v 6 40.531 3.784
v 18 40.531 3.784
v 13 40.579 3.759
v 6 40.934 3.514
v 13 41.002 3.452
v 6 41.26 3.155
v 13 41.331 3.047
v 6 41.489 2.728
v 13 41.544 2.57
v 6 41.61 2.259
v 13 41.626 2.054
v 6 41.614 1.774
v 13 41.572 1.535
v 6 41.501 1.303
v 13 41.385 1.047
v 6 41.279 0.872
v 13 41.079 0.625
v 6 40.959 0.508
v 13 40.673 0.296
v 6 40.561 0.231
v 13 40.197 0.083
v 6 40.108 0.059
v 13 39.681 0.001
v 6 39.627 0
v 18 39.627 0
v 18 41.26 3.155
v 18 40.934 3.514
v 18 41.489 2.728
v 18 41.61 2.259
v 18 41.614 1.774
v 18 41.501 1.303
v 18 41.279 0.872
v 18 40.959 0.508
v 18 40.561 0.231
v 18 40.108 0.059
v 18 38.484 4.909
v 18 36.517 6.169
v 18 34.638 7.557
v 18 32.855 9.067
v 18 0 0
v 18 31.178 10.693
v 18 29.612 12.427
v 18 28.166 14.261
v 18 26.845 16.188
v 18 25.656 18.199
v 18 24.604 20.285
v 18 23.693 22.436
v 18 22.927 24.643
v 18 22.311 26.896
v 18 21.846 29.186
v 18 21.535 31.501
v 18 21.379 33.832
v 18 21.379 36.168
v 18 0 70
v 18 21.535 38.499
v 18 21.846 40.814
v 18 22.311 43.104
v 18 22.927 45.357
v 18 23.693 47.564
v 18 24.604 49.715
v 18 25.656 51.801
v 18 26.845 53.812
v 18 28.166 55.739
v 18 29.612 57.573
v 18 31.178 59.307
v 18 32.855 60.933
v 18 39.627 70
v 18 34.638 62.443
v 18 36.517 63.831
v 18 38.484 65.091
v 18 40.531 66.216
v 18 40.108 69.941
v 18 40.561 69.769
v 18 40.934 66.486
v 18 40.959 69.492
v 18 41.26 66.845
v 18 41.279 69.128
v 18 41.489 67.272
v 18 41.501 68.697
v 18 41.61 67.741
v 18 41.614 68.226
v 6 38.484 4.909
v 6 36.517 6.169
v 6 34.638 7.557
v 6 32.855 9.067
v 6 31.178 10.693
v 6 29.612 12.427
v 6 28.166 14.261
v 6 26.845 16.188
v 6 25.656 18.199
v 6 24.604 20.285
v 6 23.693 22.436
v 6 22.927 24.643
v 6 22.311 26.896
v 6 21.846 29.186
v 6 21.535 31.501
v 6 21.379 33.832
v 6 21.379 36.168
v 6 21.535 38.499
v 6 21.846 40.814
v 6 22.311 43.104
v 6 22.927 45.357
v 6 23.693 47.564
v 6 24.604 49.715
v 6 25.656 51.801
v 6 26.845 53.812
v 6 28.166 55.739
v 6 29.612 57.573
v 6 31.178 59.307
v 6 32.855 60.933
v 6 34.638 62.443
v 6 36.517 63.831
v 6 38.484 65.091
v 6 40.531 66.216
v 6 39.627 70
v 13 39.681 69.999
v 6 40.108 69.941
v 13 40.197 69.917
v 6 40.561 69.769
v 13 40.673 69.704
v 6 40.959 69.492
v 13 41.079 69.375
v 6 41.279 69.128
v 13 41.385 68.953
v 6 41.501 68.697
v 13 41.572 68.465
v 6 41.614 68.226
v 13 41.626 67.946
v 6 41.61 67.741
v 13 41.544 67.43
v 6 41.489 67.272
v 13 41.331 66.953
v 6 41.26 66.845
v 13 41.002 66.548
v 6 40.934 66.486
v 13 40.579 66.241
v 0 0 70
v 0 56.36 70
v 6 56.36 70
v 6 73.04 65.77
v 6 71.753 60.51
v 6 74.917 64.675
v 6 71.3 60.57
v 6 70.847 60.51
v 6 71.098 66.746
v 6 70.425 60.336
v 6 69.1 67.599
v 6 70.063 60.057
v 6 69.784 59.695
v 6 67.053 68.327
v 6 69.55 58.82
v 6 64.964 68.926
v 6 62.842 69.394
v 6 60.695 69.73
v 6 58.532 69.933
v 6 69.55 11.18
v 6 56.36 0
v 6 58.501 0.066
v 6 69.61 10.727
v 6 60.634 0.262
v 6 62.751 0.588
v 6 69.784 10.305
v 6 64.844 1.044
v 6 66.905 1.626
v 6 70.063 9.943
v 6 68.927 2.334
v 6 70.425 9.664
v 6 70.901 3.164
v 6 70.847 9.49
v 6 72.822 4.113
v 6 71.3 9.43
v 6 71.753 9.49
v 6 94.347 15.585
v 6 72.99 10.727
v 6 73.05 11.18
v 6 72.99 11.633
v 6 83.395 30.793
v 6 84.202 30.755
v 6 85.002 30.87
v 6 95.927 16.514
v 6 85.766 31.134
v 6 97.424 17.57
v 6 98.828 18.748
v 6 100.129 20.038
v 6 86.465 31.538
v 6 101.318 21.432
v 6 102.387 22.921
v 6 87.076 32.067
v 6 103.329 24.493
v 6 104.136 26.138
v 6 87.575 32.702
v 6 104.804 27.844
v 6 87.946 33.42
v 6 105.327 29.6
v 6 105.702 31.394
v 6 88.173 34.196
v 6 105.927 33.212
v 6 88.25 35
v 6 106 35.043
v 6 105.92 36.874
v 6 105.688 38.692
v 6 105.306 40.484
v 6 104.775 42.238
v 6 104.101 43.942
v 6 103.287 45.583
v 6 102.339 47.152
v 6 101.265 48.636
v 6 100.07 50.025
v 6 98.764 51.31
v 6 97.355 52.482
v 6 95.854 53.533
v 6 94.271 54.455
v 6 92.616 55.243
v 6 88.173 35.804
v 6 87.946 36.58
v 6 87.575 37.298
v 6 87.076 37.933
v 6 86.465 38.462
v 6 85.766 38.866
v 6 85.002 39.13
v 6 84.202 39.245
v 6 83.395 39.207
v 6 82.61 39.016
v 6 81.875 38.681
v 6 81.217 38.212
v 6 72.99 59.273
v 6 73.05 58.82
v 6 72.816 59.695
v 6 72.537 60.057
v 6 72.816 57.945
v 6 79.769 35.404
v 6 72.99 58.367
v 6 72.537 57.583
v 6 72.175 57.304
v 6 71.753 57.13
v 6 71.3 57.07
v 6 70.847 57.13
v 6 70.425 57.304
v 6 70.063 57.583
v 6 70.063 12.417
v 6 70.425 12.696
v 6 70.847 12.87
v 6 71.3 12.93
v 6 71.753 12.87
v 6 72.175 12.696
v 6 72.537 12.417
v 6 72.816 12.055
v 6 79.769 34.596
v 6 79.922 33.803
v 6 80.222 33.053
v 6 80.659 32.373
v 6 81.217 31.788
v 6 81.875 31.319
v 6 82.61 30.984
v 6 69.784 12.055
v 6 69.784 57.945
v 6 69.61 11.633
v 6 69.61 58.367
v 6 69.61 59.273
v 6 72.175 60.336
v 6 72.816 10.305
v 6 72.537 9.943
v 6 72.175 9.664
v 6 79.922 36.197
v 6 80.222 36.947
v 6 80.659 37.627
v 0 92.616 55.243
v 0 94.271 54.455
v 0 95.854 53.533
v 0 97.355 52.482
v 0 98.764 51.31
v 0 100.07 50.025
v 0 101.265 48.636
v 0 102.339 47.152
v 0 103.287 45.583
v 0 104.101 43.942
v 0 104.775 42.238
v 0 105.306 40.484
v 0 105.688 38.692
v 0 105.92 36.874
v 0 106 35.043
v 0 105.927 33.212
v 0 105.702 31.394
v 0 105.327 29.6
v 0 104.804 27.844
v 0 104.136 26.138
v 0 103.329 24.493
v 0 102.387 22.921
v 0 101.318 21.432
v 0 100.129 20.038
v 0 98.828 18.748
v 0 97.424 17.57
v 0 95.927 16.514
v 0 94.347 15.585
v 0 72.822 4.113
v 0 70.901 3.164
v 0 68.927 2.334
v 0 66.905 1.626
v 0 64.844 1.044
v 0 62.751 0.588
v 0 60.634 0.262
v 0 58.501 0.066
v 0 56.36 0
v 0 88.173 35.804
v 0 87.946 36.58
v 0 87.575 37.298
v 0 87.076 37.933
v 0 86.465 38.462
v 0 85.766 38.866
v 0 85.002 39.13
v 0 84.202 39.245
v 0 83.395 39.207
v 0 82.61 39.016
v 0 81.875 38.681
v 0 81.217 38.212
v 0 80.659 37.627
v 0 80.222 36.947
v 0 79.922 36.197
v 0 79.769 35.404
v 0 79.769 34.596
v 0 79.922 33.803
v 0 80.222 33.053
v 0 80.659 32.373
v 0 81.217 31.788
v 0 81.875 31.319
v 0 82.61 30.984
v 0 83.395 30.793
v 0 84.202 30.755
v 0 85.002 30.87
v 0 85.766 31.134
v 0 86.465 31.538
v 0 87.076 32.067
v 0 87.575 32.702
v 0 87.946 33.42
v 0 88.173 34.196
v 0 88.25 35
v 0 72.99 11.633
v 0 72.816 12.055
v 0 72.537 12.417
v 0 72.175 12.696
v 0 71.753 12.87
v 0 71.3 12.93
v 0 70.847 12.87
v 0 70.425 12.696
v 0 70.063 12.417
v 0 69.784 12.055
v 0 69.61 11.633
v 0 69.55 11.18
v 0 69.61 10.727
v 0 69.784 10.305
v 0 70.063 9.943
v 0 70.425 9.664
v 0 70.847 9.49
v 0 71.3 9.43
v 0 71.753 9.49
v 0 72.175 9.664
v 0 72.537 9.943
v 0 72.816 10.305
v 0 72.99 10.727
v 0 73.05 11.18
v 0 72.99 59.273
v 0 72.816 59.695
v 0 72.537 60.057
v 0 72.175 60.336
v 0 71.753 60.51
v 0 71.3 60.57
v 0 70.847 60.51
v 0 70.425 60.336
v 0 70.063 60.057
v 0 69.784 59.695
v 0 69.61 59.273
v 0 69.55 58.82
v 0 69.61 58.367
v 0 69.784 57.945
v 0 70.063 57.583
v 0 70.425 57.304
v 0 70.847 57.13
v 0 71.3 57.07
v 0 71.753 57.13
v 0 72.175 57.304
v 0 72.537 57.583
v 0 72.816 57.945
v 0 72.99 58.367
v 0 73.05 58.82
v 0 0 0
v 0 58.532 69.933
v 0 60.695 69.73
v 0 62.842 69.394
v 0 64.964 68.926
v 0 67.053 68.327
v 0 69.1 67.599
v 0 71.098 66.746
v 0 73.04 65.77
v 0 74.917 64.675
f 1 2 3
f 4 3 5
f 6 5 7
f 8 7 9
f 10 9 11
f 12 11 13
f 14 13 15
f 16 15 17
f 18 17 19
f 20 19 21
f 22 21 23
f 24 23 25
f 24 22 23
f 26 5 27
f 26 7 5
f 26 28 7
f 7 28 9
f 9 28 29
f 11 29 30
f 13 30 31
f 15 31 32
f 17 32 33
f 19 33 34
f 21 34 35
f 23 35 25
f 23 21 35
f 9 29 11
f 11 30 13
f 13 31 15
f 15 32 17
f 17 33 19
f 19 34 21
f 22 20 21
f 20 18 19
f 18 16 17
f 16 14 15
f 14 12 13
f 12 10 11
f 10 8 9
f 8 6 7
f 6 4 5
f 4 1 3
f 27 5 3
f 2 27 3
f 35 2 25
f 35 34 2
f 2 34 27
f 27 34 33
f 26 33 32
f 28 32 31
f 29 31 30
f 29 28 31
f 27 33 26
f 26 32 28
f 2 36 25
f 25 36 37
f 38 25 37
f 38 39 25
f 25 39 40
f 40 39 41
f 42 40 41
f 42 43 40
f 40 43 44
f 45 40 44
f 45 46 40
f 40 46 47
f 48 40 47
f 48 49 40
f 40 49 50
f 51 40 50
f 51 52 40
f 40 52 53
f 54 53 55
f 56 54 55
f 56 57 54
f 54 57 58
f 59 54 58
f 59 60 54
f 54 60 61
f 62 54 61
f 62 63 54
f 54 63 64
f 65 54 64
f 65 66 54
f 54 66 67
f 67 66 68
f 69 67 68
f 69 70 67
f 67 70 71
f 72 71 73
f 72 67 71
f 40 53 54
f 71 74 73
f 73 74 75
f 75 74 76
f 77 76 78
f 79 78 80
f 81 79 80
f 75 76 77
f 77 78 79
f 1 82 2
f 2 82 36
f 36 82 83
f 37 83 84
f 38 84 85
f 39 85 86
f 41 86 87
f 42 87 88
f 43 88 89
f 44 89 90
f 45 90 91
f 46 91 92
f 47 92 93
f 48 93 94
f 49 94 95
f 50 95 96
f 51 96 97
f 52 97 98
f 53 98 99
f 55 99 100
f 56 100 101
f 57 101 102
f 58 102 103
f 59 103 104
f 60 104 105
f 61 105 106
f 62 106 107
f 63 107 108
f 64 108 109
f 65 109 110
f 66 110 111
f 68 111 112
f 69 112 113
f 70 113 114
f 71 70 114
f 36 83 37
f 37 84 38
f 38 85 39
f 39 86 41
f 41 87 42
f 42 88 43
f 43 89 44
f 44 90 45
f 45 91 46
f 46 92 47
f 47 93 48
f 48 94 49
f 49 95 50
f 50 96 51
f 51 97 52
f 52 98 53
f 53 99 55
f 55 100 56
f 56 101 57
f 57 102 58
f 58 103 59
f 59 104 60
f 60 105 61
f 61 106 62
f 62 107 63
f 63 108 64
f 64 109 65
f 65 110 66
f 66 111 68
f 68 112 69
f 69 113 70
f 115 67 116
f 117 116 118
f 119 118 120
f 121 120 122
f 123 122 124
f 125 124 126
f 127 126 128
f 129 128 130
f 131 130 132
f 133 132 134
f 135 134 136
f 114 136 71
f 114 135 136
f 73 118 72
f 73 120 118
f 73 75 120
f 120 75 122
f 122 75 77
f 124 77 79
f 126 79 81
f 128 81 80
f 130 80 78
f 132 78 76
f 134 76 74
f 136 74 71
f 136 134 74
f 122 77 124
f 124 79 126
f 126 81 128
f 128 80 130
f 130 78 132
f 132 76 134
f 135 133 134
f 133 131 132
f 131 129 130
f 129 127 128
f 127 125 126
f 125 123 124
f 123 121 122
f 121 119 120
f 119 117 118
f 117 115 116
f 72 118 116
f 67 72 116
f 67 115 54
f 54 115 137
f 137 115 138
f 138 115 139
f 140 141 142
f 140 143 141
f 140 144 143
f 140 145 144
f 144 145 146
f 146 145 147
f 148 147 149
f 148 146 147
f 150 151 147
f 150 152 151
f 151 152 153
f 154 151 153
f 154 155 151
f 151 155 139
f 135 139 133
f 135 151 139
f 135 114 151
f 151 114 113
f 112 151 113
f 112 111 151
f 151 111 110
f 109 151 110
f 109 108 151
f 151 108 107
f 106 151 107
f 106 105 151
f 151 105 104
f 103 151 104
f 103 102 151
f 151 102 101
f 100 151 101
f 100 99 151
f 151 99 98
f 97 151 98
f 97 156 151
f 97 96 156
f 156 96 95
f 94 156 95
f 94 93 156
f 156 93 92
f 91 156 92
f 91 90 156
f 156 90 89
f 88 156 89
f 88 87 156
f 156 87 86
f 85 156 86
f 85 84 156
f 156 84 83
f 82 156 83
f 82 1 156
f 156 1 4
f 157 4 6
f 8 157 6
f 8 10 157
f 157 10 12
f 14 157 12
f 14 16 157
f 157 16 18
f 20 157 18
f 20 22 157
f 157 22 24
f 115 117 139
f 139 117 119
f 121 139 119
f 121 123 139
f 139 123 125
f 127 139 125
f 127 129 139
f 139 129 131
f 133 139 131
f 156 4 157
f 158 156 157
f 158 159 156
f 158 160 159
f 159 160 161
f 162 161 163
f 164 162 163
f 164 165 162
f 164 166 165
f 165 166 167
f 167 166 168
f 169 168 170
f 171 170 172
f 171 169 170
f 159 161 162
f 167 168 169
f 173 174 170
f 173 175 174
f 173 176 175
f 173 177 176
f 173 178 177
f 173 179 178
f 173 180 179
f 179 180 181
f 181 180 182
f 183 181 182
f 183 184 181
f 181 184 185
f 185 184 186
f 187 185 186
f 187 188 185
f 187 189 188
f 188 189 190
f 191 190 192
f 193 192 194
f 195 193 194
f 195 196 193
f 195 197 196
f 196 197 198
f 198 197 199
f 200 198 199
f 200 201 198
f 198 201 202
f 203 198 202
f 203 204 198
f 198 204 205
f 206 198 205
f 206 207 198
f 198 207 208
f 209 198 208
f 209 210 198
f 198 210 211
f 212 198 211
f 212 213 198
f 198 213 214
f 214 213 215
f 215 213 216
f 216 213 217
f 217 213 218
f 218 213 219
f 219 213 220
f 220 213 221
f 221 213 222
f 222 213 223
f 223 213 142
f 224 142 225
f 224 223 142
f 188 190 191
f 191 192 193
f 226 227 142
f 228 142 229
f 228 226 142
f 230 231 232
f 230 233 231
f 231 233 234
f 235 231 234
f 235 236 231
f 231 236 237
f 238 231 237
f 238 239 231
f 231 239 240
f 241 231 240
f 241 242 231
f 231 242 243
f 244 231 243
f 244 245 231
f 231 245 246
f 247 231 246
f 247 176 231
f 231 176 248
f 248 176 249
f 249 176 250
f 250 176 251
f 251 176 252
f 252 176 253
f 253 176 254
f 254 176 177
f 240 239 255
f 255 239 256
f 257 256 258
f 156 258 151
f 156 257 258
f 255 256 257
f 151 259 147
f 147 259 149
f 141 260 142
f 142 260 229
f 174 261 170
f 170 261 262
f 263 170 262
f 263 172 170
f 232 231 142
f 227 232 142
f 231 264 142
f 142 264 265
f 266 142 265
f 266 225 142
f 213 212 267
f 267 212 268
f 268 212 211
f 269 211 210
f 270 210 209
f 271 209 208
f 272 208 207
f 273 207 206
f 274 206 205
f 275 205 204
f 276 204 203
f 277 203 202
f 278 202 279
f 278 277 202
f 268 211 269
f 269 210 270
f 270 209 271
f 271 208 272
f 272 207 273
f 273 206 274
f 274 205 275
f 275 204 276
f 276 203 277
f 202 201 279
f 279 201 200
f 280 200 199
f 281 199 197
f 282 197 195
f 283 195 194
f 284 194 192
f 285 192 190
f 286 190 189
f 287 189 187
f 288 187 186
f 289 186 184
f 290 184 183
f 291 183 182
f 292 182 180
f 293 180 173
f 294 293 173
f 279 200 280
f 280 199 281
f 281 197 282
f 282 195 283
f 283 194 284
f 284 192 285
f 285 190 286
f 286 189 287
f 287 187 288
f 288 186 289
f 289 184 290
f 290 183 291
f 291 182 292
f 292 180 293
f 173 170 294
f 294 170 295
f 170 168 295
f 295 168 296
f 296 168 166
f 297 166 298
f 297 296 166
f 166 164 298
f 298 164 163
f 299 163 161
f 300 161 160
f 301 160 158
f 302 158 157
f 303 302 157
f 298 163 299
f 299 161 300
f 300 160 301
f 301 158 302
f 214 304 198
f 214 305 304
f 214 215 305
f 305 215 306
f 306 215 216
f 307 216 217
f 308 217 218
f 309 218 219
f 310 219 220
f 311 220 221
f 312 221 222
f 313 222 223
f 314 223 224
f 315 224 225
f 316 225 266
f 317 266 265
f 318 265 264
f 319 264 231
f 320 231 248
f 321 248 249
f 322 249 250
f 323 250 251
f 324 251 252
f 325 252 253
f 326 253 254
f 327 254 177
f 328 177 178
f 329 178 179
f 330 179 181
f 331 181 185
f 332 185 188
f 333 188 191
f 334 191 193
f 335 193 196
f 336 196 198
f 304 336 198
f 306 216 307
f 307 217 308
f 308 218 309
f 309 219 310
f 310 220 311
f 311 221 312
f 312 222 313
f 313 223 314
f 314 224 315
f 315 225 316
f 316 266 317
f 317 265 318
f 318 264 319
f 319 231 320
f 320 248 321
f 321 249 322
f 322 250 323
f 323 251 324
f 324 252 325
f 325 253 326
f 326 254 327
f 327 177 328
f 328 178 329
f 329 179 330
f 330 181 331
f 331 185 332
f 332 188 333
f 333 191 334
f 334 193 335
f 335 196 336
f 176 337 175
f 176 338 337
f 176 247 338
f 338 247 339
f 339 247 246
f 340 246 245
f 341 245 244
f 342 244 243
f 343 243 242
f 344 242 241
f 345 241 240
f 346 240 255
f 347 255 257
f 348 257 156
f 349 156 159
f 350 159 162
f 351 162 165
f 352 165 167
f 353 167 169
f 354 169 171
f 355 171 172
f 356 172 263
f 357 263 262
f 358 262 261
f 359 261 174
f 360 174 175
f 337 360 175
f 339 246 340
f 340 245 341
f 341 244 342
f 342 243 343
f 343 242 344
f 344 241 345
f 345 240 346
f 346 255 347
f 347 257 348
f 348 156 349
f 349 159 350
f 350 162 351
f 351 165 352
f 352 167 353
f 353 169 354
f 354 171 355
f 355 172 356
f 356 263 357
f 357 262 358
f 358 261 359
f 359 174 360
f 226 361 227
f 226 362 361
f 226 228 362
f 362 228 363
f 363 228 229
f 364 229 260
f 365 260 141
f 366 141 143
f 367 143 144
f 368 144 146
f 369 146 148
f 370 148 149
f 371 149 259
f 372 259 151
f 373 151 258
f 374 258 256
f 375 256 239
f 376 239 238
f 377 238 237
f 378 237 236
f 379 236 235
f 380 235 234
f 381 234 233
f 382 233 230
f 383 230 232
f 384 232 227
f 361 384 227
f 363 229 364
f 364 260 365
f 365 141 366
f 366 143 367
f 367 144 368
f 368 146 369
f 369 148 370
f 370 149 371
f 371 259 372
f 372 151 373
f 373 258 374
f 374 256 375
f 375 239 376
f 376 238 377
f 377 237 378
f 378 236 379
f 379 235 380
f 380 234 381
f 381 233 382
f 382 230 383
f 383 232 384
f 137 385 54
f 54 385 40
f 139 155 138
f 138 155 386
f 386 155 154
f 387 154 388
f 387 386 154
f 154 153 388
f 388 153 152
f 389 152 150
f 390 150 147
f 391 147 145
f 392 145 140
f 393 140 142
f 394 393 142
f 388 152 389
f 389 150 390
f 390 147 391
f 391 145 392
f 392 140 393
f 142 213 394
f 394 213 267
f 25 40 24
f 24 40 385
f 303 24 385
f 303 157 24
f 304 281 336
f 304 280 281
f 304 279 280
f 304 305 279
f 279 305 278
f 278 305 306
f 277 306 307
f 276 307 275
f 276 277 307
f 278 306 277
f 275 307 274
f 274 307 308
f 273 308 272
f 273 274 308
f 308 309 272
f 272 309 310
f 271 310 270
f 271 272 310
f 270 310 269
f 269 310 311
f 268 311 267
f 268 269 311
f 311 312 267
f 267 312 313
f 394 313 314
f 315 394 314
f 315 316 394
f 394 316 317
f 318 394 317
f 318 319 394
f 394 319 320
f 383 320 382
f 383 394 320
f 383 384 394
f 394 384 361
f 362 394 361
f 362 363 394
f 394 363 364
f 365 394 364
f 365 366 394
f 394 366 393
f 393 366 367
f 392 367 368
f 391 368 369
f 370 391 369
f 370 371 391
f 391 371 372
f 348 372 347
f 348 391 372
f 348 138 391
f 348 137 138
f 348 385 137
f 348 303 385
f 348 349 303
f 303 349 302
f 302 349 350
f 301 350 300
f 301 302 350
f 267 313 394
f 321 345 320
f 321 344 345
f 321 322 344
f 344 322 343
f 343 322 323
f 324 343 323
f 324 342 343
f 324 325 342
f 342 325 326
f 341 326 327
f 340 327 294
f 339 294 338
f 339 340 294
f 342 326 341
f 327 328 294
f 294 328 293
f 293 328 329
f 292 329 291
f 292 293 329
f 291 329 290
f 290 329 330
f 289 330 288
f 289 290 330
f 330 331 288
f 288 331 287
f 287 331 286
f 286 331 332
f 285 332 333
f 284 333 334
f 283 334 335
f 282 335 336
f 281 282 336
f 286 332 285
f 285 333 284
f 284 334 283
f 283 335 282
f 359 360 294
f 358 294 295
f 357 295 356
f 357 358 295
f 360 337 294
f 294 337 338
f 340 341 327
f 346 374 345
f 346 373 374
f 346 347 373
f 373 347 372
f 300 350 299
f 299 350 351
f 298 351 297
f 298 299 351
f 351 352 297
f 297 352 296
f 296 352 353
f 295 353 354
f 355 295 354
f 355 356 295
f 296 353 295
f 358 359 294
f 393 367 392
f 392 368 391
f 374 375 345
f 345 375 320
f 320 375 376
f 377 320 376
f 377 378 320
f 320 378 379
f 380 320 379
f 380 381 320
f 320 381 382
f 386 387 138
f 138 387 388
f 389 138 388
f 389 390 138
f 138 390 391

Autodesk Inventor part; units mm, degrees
ref_plane "YZ Plane" through (0, 0, 0) normal (1, 0, 0) x (0, 1, 0)
ref_plane "XZ Plane" through (0, 0, 0) normal (0, 1, 0) x (-1, 0, 0)
ref_plane "XY Plane" through (0, 0, 0) normal (0, 0, 1) x (1, 0, 0)
sketch "Sketch3" plane through (0, 0, 0) normal (1, 0, 0) x (0, 1, 0)
  line L0 (0, 0) -> (56.36, 0)
  line L1 (56.36, 70) -> (0, 70)
  line L2 (0, 70) -> (0, 0)
  circle A0 centre (84, 35) radius 4.25
  line L3 (84, 35) -> (56.36, 35)
  line L4 (96, 53.4391) -> (74.4743, 64.9114)
  line L5 (94.3473, 15.5852) -> (72.8216, 4.1129)
  arc A1 (94.3473, 15.5852) -> (92.6159, 55.2427) centre (84, 35) ccw
  arc A2 (74.9172, 64.6754) -> (56.36, 70) centre (56.36, 35) ccw
  arc A3 (56.36, 0) -> (72.8216, 4.1129) centre (56.36, 35) ccw
  line L6 (84, 35) -> (71.3, 35)
  line L7 (71.3, 35) -> (71.3, 58.82)
  line L8 (71.3, 58.82) -> (71.3, 35)
  line L9 (71.3, 35) -> (71.3, 11.18)
  circle A4 centre (71.3, 58.82) radius 1.75
  circle A5 centre (71.3, 11.18) radius 1.75
  dimension "d31" = 8.5
  dimension "d33" = 27.64
  dimension "d35" = 12.7
  dimension "d36" = 23.82
  dimension "d37" = 23.82
  dimension "d38" = 3.5
  dimension "d40" = 3.5
  dimension "d41" = 84
extrude "Extrusion3" add sketch "Sketch3" along normal blind 18
sketch "Sketch4" plane through (18, 0, 0) normal (1, 0, 0) x (0, 0, -1)
  line L0 (-35, 84) -> (-35, 56.36)
  arc A0 (-70, 56.36) -> (0, 56.36) centre (-35, 56.36) ccw
  line L1 (0, 56.36) -> (-35, 56.36)
  line L2 (-70, 56.36) -> (-70, 106)
  line L3 (-70, 106) -> (0, 106)
  line L4 (0, 106) -> (0, 56.36)
  point P0 (0, 0)
  dimension "d44" = 27.64
extrude "Extrusion4" cut sketch "Sketch4" against normal blind 12
fillet "Fillet1" radius 2 2 edges at (12, 56.36, 70) (12, 56.36, 0)
properties part number "Suporte Motor"
